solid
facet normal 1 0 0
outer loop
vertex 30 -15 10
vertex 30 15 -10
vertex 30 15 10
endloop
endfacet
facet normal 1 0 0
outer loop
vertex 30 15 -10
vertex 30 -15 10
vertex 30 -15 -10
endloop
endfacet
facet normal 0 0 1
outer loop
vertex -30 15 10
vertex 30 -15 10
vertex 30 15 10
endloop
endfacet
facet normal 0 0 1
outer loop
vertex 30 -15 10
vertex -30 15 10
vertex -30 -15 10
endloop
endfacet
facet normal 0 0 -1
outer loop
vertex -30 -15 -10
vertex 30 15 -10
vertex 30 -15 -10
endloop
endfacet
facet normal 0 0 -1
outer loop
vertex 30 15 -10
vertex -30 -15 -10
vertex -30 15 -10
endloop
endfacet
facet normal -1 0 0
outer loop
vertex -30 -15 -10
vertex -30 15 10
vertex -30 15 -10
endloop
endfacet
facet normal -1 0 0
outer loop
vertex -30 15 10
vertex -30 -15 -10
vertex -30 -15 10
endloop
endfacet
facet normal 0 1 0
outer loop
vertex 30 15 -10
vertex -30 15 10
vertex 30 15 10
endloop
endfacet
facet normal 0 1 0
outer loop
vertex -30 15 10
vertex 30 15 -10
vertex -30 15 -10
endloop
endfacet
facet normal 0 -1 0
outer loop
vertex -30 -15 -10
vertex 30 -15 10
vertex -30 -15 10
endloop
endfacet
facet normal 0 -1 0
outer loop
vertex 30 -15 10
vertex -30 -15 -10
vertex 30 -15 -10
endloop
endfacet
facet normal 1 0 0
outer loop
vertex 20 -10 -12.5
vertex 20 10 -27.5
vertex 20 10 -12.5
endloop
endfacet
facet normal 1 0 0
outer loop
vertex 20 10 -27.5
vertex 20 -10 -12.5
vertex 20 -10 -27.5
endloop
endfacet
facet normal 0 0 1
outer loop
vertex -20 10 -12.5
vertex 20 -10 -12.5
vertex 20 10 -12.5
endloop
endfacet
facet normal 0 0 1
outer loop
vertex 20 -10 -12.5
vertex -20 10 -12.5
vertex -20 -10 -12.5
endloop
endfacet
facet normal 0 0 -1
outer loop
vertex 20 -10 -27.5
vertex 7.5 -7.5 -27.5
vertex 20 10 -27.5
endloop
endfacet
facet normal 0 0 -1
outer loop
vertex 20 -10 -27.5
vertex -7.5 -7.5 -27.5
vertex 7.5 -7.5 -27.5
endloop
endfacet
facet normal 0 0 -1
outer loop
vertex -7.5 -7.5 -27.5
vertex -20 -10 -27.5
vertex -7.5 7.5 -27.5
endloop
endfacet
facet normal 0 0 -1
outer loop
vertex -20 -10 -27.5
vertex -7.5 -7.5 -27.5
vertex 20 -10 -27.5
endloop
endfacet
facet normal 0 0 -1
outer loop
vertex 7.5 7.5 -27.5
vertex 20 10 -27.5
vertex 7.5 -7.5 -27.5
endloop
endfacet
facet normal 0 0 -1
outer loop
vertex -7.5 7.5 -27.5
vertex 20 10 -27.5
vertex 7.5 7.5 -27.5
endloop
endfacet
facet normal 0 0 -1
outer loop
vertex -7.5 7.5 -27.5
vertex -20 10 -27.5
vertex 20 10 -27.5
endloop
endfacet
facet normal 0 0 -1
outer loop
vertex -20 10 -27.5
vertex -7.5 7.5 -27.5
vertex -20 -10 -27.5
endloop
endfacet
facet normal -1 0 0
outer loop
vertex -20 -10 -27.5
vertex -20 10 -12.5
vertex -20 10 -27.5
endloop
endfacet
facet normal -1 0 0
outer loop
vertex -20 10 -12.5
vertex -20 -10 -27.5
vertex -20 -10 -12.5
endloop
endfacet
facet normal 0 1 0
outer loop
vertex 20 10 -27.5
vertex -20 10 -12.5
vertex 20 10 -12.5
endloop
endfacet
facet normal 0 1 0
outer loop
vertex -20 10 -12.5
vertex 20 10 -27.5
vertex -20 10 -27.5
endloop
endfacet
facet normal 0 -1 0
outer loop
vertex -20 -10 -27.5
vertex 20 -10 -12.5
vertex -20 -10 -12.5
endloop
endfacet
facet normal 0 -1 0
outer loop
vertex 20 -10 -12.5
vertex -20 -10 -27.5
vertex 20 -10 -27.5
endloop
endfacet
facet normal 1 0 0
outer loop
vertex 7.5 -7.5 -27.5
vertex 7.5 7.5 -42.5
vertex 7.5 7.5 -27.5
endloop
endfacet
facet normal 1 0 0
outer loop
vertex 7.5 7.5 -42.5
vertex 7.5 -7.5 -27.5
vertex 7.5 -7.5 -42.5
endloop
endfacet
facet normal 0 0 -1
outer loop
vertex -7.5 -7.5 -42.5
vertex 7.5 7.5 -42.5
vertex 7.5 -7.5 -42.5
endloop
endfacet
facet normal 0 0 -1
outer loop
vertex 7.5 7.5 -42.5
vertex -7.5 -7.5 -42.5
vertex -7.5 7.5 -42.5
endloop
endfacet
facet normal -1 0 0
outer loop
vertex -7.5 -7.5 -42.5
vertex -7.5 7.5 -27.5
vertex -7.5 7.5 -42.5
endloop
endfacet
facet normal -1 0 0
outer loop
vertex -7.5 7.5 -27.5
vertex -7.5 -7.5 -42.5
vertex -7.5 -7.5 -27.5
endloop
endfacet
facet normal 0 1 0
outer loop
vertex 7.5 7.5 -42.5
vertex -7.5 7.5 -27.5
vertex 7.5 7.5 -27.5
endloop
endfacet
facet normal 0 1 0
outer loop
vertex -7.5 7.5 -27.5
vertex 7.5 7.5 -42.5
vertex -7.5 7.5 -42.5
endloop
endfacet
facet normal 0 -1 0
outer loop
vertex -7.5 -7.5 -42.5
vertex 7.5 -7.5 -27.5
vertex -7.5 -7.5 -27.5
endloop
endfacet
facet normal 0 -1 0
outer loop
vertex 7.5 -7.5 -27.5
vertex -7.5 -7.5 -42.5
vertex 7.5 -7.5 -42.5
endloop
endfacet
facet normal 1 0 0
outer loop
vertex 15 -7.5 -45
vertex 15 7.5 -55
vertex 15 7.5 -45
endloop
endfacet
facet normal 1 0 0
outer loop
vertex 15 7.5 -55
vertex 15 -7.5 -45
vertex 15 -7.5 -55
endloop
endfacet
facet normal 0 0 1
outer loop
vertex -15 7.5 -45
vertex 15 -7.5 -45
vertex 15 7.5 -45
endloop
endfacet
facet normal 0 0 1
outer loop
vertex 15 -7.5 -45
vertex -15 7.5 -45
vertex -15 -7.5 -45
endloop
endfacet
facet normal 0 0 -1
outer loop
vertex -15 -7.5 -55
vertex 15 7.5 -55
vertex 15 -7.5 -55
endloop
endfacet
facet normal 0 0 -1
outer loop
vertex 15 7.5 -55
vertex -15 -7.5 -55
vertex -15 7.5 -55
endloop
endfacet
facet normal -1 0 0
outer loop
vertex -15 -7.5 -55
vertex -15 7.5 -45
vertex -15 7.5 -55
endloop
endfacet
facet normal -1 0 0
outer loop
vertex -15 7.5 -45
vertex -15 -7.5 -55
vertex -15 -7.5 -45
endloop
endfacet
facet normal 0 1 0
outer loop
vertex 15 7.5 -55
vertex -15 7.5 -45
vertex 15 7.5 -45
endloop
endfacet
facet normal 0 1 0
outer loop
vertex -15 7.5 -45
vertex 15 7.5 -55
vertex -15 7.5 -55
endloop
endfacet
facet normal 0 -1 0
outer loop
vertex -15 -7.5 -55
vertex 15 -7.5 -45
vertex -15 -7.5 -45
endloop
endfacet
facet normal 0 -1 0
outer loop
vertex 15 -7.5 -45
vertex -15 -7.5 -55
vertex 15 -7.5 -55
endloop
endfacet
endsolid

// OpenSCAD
// Dimensions for each component
large_block_dims = [60, 30, 20];  // Length, Width, Height
medium_block_dims = [40, 20, 15];
small_block_dims = [30, 15, 10];
cubic_block_dims = [15, 15, 15];

// Positional offsets for stacking
large_block_offset = [0, 0, 0];
medium_block_offset = [0, 0, -large_block_dims[2]];
cubic_block_offset = [0, 0, medium_block_offset[2] - medium_block_dims[2]];
small_block_offset = [0, 0, cubic_block_offset[2] - cubic_block_dims[2]];

// Function to create a rectangular block
module rectangular_block(size, offset) {
    translate(offset)
        cube(size, center = true);
}

// Assembly of the model
module assembly() {
    // Layer 1: Large rectangular block
    rectangular_block(large_block_dims, large_block_offset);

    // Layer 2: Medium rectangular block
    rectangular_block(medium_block_dims, medium_block_offset);

    // Layer 3: Cubic block
    rectangular_block(cubic_block_dims, cubic_block_offset);

    // Layer 4: Small rectangular block
    rectangular_block(small_block_dims, small_block_offset);
}

// Render the assembly
assembly();
